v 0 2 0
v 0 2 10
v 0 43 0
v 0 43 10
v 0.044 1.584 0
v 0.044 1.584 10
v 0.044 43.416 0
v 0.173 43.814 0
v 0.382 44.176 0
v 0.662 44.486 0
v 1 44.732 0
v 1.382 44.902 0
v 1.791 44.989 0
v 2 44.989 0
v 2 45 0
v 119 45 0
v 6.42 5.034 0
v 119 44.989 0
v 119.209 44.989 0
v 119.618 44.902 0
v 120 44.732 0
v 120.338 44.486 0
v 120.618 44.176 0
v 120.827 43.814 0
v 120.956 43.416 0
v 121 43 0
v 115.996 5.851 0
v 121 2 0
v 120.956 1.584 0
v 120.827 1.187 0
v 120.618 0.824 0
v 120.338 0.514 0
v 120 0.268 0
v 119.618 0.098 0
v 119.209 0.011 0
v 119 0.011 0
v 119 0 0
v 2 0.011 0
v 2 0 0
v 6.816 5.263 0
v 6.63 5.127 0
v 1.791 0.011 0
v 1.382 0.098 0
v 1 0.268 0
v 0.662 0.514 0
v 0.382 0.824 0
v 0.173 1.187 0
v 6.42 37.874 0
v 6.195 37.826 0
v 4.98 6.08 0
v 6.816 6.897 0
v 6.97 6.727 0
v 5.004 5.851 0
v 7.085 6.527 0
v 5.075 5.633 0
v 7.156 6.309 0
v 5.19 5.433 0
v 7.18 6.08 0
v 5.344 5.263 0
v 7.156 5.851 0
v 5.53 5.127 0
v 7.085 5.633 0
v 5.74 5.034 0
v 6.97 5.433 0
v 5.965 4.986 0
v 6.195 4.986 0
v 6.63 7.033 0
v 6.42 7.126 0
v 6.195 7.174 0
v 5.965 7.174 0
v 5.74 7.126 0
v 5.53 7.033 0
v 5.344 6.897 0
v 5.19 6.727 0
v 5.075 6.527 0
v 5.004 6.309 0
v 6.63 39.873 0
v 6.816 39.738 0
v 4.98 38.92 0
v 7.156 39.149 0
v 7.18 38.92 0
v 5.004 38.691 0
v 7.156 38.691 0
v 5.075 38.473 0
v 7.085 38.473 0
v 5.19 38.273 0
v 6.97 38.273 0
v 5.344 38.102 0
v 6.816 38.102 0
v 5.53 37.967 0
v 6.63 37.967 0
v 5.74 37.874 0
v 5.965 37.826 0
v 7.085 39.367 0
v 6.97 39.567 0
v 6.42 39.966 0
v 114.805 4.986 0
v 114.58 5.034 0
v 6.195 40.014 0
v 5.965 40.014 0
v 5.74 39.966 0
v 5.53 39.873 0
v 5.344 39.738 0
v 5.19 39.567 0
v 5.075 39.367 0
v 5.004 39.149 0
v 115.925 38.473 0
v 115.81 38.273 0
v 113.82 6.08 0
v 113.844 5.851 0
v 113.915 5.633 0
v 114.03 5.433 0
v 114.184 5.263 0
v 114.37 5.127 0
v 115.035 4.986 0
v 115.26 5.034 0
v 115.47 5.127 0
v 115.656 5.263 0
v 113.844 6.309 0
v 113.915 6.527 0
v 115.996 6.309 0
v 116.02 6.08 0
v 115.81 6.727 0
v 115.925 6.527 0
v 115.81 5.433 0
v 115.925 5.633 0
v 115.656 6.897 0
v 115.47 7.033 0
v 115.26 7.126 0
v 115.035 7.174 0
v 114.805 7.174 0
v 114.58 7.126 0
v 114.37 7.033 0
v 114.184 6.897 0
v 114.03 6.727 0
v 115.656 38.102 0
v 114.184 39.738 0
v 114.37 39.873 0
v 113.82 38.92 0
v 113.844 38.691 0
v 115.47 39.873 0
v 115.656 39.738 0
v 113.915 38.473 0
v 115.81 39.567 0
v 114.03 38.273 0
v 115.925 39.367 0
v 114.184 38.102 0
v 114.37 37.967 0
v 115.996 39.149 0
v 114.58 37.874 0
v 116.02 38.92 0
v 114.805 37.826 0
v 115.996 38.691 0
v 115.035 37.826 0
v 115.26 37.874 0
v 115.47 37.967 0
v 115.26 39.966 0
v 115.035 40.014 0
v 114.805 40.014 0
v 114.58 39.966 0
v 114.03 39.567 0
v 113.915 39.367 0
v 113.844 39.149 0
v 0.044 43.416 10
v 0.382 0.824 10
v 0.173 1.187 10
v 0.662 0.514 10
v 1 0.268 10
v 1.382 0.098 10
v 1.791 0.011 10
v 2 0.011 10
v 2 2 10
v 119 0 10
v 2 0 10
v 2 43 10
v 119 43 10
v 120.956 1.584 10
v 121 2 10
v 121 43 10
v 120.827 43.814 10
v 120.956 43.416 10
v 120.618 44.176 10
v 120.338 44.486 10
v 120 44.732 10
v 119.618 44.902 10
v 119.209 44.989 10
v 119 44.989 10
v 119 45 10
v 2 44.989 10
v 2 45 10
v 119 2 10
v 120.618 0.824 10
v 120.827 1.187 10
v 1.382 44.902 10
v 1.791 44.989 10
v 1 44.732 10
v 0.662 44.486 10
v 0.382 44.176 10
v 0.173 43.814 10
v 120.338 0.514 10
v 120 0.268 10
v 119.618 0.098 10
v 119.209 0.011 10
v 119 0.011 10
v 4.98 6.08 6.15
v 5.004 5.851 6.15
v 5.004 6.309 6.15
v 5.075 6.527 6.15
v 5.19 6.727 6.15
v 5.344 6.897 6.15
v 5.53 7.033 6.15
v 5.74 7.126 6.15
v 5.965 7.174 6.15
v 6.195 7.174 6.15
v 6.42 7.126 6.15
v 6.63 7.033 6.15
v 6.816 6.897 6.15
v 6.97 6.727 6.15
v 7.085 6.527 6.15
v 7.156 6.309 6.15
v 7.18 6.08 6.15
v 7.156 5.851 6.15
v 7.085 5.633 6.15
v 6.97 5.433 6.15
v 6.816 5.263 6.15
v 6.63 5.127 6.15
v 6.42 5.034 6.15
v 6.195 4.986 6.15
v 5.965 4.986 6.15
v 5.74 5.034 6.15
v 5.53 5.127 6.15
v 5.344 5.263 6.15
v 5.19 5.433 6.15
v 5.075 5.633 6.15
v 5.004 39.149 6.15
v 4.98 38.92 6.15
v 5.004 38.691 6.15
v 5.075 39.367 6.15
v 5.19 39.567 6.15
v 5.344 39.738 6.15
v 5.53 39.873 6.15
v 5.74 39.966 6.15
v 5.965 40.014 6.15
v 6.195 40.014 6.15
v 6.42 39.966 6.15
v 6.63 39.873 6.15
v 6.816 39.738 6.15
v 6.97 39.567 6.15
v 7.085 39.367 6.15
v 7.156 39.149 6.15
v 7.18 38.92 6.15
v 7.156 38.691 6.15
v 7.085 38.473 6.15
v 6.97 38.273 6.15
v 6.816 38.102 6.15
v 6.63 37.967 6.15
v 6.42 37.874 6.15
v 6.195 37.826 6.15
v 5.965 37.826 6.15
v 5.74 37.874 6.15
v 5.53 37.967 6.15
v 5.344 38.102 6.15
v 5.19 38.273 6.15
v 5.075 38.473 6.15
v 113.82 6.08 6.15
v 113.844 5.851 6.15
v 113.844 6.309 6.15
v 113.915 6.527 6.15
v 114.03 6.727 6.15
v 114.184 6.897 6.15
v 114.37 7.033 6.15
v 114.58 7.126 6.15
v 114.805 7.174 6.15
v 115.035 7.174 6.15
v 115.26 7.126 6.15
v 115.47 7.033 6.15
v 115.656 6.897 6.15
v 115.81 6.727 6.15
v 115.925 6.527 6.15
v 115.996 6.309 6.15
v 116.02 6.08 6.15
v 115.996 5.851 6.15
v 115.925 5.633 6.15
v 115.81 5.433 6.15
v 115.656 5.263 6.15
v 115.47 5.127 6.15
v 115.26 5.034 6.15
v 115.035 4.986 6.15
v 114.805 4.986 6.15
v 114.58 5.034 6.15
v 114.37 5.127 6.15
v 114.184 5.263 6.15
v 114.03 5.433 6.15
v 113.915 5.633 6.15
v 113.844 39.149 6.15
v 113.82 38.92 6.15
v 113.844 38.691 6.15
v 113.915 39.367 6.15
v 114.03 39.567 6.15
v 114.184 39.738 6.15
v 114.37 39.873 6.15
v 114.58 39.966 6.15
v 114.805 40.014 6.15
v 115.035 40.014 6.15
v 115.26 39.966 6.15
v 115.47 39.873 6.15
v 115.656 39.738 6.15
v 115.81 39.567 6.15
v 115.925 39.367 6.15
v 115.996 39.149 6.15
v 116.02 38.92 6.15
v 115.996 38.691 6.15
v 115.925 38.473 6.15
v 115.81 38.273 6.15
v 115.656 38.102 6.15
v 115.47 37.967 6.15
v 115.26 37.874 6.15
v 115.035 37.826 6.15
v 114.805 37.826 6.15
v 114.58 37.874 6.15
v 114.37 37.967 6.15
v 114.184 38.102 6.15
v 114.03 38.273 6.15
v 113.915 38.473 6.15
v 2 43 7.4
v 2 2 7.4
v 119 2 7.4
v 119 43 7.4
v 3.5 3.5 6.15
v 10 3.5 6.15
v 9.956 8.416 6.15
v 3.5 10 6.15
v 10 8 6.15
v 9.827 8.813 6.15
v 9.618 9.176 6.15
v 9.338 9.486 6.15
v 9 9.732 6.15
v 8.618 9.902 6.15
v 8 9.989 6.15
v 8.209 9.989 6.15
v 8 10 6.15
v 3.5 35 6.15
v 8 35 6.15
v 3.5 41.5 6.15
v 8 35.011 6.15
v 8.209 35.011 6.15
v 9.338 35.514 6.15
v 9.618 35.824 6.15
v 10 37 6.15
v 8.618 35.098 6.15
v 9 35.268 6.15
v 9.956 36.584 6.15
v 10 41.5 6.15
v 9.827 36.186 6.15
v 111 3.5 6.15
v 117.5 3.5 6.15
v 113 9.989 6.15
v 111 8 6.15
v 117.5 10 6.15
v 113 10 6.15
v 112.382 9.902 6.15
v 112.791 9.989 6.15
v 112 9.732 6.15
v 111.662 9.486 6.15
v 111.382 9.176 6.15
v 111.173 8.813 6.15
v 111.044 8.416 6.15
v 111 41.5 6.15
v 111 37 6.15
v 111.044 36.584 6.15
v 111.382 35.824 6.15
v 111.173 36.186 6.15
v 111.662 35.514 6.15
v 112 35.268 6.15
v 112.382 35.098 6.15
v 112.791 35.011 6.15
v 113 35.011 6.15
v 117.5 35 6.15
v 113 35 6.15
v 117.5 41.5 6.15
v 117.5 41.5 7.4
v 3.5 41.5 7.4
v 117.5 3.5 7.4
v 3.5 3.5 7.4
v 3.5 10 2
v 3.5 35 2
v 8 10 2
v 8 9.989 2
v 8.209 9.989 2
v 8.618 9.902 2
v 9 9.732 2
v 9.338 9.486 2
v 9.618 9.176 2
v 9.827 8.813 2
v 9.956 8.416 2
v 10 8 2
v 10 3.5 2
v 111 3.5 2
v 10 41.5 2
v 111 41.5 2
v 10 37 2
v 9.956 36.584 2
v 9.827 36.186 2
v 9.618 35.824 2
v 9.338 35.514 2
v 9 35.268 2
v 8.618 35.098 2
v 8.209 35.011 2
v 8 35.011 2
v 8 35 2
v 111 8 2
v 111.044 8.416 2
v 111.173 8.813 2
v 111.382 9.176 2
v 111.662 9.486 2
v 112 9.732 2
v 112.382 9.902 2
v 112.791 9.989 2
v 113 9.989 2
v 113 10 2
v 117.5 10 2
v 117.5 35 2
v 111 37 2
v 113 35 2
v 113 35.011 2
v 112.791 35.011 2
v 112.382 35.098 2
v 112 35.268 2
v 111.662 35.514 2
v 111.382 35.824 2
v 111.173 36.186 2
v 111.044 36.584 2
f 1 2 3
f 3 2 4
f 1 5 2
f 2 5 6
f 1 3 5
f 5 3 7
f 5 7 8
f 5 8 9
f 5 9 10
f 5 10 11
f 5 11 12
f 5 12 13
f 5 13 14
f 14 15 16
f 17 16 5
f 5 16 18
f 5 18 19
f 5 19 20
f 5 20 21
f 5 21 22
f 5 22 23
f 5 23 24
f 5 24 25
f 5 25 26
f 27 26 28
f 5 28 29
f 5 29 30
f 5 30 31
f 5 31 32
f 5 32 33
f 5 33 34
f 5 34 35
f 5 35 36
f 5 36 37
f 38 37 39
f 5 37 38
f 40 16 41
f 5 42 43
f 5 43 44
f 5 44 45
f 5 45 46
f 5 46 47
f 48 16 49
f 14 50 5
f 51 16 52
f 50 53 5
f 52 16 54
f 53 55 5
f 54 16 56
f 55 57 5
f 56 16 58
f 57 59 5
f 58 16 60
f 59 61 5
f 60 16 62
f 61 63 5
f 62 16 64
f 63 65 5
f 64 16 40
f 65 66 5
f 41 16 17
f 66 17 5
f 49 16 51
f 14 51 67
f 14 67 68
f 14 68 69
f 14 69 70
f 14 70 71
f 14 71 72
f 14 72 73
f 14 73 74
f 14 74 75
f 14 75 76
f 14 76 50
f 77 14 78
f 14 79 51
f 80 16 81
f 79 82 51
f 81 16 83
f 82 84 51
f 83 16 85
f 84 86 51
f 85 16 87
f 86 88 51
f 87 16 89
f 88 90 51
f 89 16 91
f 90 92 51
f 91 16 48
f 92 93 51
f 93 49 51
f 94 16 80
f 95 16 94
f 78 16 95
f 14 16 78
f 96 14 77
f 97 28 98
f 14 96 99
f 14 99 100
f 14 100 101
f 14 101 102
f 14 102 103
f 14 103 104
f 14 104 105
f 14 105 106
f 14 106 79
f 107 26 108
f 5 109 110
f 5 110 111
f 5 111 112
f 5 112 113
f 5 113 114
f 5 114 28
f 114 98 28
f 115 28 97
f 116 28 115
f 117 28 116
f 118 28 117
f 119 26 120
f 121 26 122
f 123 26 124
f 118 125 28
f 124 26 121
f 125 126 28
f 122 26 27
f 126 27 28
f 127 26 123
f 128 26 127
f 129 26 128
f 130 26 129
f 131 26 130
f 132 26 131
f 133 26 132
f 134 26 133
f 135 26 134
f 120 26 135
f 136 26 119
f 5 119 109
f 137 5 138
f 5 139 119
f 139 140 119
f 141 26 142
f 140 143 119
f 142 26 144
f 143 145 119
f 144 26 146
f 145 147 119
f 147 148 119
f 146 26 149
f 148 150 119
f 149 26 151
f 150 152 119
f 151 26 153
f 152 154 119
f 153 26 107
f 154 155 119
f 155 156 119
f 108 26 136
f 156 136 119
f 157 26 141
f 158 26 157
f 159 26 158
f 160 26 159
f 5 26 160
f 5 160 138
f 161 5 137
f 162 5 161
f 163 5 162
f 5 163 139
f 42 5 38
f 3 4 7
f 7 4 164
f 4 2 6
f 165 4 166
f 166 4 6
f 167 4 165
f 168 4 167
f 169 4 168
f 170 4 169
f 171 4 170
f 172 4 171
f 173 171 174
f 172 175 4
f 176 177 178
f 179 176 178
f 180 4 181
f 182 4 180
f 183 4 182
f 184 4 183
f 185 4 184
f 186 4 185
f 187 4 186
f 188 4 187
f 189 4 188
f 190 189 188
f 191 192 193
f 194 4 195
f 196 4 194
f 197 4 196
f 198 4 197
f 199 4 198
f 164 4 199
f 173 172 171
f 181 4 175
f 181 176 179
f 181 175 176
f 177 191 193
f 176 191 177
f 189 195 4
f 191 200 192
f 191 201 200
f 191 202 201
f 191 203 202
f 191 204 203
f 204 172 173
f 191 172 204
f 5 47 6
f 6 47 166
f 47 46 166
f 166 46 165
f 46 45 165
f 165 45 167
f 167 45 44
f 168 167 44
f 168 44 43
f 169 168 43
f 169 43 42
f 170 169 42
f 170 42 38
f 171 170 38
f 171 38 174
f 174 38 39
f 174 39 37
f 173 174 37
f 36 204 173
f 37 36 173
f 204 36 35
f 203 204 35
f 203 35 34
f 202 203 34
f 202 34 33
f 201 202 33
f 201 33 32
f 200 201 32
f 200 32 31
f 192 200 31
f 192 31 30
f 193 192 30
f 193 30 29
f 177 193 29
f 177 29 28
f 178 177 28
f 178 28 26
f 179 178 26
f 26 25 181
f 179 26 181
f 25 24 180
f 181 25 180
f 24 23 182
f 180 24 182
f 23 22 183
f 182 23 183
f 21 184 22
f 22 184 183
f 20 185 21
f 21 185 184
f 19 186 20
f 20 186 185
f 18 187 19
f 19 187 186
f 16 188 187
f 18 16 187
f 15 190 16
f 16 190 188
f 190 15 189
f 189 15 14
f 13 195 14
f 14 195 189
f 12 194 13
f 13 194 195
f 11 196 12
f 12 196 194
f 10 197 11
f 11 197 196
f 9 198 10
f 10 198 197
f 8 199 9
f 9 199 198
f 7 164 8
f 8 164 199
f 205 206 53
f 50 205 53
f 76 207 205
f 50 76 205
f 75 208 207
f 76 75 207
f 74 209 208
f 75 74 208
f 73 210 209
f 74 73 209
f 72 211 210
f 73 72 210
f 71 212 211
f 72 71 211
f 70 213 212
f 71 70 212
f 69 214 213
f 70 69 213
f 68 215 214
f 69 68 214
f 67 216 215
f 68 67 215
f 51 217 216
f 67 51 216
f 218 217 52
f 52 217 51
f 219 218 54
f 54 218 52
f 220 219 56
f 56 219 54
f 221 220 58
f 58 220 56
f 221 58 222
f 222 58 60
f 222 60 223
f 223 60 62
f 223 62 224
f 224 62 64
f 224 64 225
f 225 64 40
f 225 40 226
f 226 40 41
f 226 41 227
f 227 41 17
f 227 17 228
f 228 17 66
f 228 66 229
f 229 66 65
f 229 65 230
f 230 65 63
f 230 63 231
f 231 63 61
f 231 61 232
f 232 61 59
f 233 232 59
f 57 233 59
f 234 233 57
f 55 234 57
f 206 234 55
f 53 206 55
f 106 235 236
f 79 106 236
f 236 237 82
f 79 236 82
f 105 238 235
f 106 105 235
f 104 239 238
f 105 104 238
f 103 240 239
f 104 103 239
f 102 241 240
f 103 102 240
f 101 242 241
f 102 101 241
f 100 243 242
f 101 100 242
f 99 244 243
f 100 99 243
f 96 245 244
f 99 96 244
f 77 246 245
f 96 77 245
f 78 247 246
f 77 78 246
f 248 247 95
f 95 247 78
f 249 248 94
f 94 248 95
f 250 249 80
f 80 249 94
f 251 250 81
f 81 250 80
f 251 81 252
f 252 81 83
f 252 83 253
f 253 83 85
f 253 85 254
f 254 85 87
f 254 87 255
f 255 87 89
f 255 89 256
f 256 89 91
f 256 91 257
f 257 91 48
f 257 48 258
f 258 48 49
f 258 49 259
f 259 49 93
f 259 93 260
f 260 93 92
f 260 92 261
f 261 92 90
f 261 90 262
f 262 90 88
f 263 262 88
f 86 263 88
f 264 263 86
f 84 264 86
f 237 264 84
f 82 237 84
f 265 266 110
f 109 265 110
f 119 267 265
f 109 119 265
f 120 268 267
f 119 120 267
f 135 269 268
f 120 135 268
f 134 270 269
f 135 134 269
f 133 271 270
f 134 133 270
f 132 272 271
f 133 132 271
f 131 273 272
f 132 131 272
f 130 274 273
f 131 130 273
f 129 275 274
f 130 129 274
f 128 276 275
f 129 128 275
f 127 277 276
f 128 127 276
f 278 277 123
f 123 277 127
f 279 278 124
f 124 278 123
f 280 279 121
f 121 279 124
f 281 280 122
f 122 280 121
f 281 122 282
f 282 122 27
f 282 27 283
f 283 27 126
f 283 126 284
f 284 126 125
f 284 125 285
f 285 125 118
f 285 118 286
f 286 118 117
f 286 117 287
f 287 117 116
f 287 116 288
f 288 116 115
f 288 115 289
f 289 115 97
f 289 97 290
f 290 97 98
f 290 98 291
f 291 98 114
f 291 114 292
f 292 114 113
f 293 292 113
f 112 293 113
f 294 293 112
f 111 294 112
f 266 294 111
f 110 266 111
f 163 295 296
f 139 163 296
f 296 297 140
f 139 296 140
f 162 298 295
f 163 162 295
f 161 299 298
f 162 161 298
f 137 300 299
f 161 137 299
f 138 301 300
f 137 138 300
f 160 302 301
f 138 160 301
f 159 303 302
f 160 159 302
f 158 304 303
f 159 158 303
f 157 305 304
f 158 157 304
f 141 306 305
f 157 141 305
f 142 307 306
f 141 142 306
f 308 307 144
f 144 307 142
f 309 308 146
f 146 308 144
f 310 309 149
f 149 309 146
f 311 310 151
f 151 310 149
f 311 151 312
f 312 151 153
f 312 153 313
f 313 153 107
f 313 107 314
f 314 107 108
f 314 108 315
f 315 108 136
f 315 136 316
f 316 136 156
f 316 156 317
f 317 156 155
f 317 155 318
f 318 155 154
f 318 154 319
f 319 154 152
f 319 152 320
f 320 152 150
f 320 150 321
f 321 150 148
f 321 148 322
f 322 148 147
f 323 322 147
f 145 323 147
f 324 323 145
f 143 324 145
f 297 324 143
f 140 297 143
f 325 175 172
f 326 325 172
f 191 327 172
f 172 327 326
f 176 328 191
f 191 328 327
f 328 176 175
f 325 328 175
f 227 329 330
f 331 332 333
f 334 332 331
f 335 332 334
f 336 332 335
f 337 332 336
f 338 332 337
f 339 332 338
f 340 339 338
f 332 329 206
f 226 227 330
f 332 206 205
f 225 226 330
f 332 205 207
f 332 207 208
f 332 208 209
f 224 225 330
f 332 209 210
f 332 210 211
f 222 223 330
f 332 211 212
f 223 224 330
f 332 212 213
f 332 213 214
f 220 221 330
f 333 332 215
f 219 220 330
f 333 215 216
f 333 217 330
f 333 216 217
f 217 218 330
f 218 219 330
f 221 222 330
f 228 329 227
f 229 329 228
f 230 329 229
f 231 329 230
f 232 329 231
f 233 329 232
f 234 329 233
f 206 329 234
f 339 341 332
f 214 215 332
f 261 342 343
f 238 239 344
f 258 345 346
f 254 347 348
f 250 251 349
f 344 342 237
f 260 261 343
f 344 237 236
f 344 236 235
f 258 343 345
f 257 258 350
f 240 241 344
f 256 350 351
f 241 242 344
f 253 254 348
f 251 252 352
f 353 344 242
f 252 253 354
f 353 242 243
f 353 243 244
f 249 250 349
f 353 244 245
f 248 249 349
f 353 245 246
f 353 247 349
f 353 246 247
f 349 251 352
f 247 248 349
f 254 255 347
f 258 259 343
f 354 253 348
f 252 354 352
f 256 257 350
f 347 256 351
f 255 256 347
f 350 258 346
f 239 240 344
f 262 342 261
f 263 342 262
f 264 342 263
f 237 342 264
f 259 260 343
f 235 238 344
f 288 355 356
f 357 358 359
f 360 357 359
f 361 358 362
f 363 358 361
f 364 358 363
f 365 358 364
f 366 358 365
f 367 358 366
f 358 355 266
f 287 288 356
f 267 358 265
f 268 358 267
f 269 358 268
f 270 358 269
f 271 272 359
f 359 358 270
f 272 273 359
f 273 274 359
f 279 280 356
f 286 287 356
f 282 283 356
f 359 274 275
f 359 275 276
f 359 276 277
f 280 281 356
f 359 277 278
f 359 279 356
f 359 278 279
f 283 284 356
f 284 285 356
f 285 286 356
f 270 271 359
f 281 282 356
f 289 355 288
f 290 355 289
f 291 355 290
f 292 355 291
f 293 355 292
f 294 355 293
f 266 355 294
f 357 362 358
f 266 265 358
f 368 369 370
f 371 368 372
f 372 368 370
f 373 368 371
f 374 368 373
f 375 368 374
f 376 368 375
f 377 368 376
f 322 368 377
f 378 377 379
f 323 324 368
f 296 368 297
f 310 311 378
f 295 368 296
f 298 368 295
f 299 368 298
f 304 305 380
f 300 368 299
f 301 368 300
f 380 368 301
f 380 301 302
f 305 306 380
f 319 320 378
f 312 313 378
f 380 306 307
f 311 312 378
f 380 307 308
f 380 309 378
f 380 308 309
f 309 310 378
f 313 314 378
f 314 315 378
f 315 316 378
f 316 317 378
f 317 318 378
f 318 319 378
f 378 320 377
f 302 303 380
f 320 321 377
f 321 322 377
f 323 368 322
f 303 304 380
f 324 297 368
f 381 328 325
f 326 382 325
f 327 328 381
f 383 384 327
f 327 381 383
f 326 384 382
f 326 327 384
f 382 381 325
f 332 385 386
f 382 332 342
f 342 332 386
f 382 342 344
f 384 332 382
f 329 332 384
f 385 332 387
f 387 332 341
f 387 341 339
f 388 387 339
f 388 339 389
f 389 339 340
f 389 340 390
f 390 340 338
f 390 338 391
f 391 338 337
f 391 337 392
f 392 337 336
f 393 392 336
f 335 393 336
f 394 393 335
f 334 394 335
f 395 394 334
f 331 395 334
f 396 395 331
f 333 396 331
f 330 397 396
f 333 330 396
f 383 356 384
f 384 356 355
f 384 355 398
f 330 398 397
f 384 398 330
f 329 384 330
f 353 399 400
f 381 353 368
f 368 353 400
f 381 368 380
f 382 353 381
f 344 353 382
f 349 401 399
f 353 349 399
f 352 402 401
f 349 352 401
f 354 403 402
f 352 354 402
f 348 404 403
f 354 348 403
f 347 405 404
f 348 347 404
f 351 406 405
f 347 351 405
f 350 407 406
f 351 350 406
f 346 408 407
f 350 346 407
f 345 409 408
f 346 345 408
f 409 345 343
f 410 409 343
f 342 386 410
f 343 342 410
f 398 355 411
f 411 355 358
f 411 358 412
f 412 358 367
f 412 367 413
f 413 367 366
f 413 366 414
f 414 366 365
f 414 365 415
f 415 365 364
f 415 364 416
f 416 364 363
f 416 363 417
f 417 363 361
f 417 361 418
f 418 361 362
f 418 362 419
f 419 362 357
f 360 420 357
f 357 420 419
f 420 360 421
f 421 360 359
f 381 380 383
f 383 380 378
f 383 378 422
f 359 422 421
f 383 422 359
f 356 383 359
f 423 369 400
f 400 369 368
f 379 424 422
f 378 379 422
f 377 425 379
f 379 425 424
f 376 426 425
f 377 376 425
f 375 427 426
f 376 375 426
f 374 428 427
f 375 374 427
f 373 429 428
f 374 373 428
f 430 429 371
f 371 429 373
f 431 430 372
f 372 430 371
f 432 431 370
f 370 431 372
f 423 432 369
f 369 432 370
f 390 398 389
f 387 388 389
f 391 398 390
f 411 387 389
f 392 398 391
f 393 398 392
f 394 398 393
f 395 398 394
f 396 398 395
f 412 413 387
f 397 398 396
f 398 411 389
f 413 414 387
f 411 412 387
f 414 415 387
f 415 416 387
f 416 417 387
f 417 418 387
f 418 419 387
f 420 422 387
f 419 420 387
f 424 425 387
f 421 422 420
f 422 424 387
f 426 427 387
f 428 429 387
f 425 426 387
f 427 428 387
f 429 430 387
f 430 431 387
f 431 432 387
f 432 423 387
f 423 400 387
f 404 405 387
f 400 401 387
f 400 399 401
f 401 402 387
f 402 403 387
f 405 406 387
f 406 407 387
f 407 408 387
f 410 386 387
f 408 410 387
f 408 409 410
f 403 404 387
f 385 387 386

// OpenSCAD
// See OpenSCAD documentation at 
// http://en.wikibooks.org/wiki/OpenSCAD_User_Manual/The_OpenSCAD_Language
//
// A case for http://gerrysweeney.com/ resistor box.
// Use with four M2.5 x 8mm screws. Box is symetric. Tested with Makerfarm Prusa I3V
// 0.4mm Hexagon extruder, PLA 1.75, 0.3mm layer height, 0.3 infill (slicing by Slic3r 1.1.7).
//
// Public domain. Attribution not required. Provided AS IS.
//
// All dimensions are in millimeters.

// Display options
$fn=30;

// Board dimensions
//
// Board x dimension (as measured).
board_len = 116;  
// Board y dimension (as measured).
board_width = 40;  
// Board z dimension (nominal PCB height).
board_thickness = 1.6;  
// board edge to center of corner holes (as measured).
board_hole_distance = 3.58;  
// Required clearance below for resistors near the holes (as measured). 
// This is for two of the bottom resistors that are too close to the 
// corner hole.
resistor_z_clearance = 1.25; 
 
// Box dimensions
//
// Width of free space around the board.
board_margin = 0.5; 
// Width of box wall around the board.
wall_width = 2;  
// Radius of four rounded corners.
corner_radius = wall_width;  
// space between board and bottom of the box. Adjusted to match to screw length (8mm).
space_below_board = 5.4;  
// Height of wall above board top.
top_margin = 1;  
// Screw hole (for M2.5).
screw_hole_width = 2.2; 
// Visible width of support rail below the board. 
support_rail_width = 1.5;  
// x size of screw posts, measured from box outer surface.
support_post_x_len = 10;  
// x size of screw posts, measured from box outer surface.
support_post_y_len = 10;  

// Derived dimensions
//
// Distance from box outer surface to center of screw holes.
box_hole_distance = wall_width + board_margin + board_hole_distance;
// Total length of the box
box_len = 2*wall_width + 2*board_margin + board_len;
// Total width of the box.
box_width = 2*wall_width + 2*board_margin + board_width;
// Total height of the box.
box_height = wall_width + space_below_board + board_thickness + top_margin;
// Height of support rail from  outer bottom of the box.
support_rail_z_len = wall_width + space_below_board;
// Height of screw posts from outer bottom of the box.
support_post_z_len = support_rail_z_len - resistor_z_clearance;

// Report key dimensions.
echo(str("** Box dimensions: len=", box_len, ", width=", box_width, ", height=", box_height));
// This value should be slightly (e.g. 1mm) longer than the screw.
echo(str("** Screw max len: ", box_height - top_margin));
echo(str("** Support threading height: ", support_post_z_len));

// Defines a solid box of given origin and dimensions.
module solid_box(x, y, z, xlen, ylen, zlen) {
 translate([x, y, z]) 
 cube([xlen, ylen, zlen]); 
}

// Defines a solid box of given origin and dimension with 4 corners rounded.
module rounded_solid_box(x, y, z, xlen, ylen, zlen, radius) {
  // Create a solid box with four corners removed.
  translate([x, y, z]) {
    difference() {
      solid_box(0, 0, 0, xlen, ylen, zlen);
      // Remove square corners
      solid_box(0, 0, 0, radius, radius, zlen);
      solid_box(xlen-radius, 0, 0, radius, radius, zlen);
      solid_box(0, ylen-radius, 0, radius, radius, zlen);
      solid_box(xlen-radius, ylen-radius, 0, radius, radius, zlen);
    };

    // Add four rounded corners.
    translate([radius,radius,0]) cylinder(h = zlen, r = radius);
    translate([xlen-radius, radius, 0]) cylinder(h = zlen, r = radius);
    translate([radius, ylen-radius, 0]) cylinder(h = zlen, r = radius);
    translate([xlen-radius, ylen-radius, 0]) cylinder(h = zlen, r = radius);
  }
}

// Defines a scree hole at given x,y center.
module screw_hole(x, y) {
  translate([x, y, -1]) {
    cylinder(h=box_height+2, r=screw_hole_width/2);
  }
}

// Defines a support post (no hole) at given x,y (which are the minimal x,y origin of
// the post rather than the center).
module support_post(x, y) {
  rounded_solid_box(x, y, 0, support_post_x_len, support_post_y_len, support_post_z_len, corner_radius);
}

module sweeney_box() {
  difference() {
    union() {
      difference() {
        // Define the overall box.
        rounded_solid_box(0, 0, 0, box_len, box_width, box_height, corner_radius);
        // Remove material until the support rails.
        solid_box(wall_width, wall_width, support_rail_z_len, 
            box_len-2*wall_width, box_width-2*wall_width, box_height);
        // Remove material until the bottom.
        solid_box(wall_width + support_rail_width, wall_width + support_rail_width, wall_width, 
            box_len-2*(wall_width + support_rail_width), 
            box_width-2*(wall_width + support_rail_width), 
            box_height);
      }
      // Add support posts.
      support_post(0, 0);
      support_post(box_len - support_post_x_len, 0);
      support_post(0, box_width-support_post_y_len, 0);
      support_post(box_len - support_post_x_len, box_width - support_post_y_len);
    }

    // Remove material for screw holes.
    screw_hole(box_hole_distance, box_hole_distance);
    screw_hole(box_hole_distance, box_width-box_hole_distance);
    screw_hole(box_len-box_hole_distance, box_hole_distance);
    screw_hole(box_len-box_hole_distance, box_width-box_hole_distance);
  }
}

// The top object.
intersection() {
  sweeney_box();
  // Uncomment to print a small portion for testing.
  // solid_box(0, 0, 0, 20, 60, 60);
}
